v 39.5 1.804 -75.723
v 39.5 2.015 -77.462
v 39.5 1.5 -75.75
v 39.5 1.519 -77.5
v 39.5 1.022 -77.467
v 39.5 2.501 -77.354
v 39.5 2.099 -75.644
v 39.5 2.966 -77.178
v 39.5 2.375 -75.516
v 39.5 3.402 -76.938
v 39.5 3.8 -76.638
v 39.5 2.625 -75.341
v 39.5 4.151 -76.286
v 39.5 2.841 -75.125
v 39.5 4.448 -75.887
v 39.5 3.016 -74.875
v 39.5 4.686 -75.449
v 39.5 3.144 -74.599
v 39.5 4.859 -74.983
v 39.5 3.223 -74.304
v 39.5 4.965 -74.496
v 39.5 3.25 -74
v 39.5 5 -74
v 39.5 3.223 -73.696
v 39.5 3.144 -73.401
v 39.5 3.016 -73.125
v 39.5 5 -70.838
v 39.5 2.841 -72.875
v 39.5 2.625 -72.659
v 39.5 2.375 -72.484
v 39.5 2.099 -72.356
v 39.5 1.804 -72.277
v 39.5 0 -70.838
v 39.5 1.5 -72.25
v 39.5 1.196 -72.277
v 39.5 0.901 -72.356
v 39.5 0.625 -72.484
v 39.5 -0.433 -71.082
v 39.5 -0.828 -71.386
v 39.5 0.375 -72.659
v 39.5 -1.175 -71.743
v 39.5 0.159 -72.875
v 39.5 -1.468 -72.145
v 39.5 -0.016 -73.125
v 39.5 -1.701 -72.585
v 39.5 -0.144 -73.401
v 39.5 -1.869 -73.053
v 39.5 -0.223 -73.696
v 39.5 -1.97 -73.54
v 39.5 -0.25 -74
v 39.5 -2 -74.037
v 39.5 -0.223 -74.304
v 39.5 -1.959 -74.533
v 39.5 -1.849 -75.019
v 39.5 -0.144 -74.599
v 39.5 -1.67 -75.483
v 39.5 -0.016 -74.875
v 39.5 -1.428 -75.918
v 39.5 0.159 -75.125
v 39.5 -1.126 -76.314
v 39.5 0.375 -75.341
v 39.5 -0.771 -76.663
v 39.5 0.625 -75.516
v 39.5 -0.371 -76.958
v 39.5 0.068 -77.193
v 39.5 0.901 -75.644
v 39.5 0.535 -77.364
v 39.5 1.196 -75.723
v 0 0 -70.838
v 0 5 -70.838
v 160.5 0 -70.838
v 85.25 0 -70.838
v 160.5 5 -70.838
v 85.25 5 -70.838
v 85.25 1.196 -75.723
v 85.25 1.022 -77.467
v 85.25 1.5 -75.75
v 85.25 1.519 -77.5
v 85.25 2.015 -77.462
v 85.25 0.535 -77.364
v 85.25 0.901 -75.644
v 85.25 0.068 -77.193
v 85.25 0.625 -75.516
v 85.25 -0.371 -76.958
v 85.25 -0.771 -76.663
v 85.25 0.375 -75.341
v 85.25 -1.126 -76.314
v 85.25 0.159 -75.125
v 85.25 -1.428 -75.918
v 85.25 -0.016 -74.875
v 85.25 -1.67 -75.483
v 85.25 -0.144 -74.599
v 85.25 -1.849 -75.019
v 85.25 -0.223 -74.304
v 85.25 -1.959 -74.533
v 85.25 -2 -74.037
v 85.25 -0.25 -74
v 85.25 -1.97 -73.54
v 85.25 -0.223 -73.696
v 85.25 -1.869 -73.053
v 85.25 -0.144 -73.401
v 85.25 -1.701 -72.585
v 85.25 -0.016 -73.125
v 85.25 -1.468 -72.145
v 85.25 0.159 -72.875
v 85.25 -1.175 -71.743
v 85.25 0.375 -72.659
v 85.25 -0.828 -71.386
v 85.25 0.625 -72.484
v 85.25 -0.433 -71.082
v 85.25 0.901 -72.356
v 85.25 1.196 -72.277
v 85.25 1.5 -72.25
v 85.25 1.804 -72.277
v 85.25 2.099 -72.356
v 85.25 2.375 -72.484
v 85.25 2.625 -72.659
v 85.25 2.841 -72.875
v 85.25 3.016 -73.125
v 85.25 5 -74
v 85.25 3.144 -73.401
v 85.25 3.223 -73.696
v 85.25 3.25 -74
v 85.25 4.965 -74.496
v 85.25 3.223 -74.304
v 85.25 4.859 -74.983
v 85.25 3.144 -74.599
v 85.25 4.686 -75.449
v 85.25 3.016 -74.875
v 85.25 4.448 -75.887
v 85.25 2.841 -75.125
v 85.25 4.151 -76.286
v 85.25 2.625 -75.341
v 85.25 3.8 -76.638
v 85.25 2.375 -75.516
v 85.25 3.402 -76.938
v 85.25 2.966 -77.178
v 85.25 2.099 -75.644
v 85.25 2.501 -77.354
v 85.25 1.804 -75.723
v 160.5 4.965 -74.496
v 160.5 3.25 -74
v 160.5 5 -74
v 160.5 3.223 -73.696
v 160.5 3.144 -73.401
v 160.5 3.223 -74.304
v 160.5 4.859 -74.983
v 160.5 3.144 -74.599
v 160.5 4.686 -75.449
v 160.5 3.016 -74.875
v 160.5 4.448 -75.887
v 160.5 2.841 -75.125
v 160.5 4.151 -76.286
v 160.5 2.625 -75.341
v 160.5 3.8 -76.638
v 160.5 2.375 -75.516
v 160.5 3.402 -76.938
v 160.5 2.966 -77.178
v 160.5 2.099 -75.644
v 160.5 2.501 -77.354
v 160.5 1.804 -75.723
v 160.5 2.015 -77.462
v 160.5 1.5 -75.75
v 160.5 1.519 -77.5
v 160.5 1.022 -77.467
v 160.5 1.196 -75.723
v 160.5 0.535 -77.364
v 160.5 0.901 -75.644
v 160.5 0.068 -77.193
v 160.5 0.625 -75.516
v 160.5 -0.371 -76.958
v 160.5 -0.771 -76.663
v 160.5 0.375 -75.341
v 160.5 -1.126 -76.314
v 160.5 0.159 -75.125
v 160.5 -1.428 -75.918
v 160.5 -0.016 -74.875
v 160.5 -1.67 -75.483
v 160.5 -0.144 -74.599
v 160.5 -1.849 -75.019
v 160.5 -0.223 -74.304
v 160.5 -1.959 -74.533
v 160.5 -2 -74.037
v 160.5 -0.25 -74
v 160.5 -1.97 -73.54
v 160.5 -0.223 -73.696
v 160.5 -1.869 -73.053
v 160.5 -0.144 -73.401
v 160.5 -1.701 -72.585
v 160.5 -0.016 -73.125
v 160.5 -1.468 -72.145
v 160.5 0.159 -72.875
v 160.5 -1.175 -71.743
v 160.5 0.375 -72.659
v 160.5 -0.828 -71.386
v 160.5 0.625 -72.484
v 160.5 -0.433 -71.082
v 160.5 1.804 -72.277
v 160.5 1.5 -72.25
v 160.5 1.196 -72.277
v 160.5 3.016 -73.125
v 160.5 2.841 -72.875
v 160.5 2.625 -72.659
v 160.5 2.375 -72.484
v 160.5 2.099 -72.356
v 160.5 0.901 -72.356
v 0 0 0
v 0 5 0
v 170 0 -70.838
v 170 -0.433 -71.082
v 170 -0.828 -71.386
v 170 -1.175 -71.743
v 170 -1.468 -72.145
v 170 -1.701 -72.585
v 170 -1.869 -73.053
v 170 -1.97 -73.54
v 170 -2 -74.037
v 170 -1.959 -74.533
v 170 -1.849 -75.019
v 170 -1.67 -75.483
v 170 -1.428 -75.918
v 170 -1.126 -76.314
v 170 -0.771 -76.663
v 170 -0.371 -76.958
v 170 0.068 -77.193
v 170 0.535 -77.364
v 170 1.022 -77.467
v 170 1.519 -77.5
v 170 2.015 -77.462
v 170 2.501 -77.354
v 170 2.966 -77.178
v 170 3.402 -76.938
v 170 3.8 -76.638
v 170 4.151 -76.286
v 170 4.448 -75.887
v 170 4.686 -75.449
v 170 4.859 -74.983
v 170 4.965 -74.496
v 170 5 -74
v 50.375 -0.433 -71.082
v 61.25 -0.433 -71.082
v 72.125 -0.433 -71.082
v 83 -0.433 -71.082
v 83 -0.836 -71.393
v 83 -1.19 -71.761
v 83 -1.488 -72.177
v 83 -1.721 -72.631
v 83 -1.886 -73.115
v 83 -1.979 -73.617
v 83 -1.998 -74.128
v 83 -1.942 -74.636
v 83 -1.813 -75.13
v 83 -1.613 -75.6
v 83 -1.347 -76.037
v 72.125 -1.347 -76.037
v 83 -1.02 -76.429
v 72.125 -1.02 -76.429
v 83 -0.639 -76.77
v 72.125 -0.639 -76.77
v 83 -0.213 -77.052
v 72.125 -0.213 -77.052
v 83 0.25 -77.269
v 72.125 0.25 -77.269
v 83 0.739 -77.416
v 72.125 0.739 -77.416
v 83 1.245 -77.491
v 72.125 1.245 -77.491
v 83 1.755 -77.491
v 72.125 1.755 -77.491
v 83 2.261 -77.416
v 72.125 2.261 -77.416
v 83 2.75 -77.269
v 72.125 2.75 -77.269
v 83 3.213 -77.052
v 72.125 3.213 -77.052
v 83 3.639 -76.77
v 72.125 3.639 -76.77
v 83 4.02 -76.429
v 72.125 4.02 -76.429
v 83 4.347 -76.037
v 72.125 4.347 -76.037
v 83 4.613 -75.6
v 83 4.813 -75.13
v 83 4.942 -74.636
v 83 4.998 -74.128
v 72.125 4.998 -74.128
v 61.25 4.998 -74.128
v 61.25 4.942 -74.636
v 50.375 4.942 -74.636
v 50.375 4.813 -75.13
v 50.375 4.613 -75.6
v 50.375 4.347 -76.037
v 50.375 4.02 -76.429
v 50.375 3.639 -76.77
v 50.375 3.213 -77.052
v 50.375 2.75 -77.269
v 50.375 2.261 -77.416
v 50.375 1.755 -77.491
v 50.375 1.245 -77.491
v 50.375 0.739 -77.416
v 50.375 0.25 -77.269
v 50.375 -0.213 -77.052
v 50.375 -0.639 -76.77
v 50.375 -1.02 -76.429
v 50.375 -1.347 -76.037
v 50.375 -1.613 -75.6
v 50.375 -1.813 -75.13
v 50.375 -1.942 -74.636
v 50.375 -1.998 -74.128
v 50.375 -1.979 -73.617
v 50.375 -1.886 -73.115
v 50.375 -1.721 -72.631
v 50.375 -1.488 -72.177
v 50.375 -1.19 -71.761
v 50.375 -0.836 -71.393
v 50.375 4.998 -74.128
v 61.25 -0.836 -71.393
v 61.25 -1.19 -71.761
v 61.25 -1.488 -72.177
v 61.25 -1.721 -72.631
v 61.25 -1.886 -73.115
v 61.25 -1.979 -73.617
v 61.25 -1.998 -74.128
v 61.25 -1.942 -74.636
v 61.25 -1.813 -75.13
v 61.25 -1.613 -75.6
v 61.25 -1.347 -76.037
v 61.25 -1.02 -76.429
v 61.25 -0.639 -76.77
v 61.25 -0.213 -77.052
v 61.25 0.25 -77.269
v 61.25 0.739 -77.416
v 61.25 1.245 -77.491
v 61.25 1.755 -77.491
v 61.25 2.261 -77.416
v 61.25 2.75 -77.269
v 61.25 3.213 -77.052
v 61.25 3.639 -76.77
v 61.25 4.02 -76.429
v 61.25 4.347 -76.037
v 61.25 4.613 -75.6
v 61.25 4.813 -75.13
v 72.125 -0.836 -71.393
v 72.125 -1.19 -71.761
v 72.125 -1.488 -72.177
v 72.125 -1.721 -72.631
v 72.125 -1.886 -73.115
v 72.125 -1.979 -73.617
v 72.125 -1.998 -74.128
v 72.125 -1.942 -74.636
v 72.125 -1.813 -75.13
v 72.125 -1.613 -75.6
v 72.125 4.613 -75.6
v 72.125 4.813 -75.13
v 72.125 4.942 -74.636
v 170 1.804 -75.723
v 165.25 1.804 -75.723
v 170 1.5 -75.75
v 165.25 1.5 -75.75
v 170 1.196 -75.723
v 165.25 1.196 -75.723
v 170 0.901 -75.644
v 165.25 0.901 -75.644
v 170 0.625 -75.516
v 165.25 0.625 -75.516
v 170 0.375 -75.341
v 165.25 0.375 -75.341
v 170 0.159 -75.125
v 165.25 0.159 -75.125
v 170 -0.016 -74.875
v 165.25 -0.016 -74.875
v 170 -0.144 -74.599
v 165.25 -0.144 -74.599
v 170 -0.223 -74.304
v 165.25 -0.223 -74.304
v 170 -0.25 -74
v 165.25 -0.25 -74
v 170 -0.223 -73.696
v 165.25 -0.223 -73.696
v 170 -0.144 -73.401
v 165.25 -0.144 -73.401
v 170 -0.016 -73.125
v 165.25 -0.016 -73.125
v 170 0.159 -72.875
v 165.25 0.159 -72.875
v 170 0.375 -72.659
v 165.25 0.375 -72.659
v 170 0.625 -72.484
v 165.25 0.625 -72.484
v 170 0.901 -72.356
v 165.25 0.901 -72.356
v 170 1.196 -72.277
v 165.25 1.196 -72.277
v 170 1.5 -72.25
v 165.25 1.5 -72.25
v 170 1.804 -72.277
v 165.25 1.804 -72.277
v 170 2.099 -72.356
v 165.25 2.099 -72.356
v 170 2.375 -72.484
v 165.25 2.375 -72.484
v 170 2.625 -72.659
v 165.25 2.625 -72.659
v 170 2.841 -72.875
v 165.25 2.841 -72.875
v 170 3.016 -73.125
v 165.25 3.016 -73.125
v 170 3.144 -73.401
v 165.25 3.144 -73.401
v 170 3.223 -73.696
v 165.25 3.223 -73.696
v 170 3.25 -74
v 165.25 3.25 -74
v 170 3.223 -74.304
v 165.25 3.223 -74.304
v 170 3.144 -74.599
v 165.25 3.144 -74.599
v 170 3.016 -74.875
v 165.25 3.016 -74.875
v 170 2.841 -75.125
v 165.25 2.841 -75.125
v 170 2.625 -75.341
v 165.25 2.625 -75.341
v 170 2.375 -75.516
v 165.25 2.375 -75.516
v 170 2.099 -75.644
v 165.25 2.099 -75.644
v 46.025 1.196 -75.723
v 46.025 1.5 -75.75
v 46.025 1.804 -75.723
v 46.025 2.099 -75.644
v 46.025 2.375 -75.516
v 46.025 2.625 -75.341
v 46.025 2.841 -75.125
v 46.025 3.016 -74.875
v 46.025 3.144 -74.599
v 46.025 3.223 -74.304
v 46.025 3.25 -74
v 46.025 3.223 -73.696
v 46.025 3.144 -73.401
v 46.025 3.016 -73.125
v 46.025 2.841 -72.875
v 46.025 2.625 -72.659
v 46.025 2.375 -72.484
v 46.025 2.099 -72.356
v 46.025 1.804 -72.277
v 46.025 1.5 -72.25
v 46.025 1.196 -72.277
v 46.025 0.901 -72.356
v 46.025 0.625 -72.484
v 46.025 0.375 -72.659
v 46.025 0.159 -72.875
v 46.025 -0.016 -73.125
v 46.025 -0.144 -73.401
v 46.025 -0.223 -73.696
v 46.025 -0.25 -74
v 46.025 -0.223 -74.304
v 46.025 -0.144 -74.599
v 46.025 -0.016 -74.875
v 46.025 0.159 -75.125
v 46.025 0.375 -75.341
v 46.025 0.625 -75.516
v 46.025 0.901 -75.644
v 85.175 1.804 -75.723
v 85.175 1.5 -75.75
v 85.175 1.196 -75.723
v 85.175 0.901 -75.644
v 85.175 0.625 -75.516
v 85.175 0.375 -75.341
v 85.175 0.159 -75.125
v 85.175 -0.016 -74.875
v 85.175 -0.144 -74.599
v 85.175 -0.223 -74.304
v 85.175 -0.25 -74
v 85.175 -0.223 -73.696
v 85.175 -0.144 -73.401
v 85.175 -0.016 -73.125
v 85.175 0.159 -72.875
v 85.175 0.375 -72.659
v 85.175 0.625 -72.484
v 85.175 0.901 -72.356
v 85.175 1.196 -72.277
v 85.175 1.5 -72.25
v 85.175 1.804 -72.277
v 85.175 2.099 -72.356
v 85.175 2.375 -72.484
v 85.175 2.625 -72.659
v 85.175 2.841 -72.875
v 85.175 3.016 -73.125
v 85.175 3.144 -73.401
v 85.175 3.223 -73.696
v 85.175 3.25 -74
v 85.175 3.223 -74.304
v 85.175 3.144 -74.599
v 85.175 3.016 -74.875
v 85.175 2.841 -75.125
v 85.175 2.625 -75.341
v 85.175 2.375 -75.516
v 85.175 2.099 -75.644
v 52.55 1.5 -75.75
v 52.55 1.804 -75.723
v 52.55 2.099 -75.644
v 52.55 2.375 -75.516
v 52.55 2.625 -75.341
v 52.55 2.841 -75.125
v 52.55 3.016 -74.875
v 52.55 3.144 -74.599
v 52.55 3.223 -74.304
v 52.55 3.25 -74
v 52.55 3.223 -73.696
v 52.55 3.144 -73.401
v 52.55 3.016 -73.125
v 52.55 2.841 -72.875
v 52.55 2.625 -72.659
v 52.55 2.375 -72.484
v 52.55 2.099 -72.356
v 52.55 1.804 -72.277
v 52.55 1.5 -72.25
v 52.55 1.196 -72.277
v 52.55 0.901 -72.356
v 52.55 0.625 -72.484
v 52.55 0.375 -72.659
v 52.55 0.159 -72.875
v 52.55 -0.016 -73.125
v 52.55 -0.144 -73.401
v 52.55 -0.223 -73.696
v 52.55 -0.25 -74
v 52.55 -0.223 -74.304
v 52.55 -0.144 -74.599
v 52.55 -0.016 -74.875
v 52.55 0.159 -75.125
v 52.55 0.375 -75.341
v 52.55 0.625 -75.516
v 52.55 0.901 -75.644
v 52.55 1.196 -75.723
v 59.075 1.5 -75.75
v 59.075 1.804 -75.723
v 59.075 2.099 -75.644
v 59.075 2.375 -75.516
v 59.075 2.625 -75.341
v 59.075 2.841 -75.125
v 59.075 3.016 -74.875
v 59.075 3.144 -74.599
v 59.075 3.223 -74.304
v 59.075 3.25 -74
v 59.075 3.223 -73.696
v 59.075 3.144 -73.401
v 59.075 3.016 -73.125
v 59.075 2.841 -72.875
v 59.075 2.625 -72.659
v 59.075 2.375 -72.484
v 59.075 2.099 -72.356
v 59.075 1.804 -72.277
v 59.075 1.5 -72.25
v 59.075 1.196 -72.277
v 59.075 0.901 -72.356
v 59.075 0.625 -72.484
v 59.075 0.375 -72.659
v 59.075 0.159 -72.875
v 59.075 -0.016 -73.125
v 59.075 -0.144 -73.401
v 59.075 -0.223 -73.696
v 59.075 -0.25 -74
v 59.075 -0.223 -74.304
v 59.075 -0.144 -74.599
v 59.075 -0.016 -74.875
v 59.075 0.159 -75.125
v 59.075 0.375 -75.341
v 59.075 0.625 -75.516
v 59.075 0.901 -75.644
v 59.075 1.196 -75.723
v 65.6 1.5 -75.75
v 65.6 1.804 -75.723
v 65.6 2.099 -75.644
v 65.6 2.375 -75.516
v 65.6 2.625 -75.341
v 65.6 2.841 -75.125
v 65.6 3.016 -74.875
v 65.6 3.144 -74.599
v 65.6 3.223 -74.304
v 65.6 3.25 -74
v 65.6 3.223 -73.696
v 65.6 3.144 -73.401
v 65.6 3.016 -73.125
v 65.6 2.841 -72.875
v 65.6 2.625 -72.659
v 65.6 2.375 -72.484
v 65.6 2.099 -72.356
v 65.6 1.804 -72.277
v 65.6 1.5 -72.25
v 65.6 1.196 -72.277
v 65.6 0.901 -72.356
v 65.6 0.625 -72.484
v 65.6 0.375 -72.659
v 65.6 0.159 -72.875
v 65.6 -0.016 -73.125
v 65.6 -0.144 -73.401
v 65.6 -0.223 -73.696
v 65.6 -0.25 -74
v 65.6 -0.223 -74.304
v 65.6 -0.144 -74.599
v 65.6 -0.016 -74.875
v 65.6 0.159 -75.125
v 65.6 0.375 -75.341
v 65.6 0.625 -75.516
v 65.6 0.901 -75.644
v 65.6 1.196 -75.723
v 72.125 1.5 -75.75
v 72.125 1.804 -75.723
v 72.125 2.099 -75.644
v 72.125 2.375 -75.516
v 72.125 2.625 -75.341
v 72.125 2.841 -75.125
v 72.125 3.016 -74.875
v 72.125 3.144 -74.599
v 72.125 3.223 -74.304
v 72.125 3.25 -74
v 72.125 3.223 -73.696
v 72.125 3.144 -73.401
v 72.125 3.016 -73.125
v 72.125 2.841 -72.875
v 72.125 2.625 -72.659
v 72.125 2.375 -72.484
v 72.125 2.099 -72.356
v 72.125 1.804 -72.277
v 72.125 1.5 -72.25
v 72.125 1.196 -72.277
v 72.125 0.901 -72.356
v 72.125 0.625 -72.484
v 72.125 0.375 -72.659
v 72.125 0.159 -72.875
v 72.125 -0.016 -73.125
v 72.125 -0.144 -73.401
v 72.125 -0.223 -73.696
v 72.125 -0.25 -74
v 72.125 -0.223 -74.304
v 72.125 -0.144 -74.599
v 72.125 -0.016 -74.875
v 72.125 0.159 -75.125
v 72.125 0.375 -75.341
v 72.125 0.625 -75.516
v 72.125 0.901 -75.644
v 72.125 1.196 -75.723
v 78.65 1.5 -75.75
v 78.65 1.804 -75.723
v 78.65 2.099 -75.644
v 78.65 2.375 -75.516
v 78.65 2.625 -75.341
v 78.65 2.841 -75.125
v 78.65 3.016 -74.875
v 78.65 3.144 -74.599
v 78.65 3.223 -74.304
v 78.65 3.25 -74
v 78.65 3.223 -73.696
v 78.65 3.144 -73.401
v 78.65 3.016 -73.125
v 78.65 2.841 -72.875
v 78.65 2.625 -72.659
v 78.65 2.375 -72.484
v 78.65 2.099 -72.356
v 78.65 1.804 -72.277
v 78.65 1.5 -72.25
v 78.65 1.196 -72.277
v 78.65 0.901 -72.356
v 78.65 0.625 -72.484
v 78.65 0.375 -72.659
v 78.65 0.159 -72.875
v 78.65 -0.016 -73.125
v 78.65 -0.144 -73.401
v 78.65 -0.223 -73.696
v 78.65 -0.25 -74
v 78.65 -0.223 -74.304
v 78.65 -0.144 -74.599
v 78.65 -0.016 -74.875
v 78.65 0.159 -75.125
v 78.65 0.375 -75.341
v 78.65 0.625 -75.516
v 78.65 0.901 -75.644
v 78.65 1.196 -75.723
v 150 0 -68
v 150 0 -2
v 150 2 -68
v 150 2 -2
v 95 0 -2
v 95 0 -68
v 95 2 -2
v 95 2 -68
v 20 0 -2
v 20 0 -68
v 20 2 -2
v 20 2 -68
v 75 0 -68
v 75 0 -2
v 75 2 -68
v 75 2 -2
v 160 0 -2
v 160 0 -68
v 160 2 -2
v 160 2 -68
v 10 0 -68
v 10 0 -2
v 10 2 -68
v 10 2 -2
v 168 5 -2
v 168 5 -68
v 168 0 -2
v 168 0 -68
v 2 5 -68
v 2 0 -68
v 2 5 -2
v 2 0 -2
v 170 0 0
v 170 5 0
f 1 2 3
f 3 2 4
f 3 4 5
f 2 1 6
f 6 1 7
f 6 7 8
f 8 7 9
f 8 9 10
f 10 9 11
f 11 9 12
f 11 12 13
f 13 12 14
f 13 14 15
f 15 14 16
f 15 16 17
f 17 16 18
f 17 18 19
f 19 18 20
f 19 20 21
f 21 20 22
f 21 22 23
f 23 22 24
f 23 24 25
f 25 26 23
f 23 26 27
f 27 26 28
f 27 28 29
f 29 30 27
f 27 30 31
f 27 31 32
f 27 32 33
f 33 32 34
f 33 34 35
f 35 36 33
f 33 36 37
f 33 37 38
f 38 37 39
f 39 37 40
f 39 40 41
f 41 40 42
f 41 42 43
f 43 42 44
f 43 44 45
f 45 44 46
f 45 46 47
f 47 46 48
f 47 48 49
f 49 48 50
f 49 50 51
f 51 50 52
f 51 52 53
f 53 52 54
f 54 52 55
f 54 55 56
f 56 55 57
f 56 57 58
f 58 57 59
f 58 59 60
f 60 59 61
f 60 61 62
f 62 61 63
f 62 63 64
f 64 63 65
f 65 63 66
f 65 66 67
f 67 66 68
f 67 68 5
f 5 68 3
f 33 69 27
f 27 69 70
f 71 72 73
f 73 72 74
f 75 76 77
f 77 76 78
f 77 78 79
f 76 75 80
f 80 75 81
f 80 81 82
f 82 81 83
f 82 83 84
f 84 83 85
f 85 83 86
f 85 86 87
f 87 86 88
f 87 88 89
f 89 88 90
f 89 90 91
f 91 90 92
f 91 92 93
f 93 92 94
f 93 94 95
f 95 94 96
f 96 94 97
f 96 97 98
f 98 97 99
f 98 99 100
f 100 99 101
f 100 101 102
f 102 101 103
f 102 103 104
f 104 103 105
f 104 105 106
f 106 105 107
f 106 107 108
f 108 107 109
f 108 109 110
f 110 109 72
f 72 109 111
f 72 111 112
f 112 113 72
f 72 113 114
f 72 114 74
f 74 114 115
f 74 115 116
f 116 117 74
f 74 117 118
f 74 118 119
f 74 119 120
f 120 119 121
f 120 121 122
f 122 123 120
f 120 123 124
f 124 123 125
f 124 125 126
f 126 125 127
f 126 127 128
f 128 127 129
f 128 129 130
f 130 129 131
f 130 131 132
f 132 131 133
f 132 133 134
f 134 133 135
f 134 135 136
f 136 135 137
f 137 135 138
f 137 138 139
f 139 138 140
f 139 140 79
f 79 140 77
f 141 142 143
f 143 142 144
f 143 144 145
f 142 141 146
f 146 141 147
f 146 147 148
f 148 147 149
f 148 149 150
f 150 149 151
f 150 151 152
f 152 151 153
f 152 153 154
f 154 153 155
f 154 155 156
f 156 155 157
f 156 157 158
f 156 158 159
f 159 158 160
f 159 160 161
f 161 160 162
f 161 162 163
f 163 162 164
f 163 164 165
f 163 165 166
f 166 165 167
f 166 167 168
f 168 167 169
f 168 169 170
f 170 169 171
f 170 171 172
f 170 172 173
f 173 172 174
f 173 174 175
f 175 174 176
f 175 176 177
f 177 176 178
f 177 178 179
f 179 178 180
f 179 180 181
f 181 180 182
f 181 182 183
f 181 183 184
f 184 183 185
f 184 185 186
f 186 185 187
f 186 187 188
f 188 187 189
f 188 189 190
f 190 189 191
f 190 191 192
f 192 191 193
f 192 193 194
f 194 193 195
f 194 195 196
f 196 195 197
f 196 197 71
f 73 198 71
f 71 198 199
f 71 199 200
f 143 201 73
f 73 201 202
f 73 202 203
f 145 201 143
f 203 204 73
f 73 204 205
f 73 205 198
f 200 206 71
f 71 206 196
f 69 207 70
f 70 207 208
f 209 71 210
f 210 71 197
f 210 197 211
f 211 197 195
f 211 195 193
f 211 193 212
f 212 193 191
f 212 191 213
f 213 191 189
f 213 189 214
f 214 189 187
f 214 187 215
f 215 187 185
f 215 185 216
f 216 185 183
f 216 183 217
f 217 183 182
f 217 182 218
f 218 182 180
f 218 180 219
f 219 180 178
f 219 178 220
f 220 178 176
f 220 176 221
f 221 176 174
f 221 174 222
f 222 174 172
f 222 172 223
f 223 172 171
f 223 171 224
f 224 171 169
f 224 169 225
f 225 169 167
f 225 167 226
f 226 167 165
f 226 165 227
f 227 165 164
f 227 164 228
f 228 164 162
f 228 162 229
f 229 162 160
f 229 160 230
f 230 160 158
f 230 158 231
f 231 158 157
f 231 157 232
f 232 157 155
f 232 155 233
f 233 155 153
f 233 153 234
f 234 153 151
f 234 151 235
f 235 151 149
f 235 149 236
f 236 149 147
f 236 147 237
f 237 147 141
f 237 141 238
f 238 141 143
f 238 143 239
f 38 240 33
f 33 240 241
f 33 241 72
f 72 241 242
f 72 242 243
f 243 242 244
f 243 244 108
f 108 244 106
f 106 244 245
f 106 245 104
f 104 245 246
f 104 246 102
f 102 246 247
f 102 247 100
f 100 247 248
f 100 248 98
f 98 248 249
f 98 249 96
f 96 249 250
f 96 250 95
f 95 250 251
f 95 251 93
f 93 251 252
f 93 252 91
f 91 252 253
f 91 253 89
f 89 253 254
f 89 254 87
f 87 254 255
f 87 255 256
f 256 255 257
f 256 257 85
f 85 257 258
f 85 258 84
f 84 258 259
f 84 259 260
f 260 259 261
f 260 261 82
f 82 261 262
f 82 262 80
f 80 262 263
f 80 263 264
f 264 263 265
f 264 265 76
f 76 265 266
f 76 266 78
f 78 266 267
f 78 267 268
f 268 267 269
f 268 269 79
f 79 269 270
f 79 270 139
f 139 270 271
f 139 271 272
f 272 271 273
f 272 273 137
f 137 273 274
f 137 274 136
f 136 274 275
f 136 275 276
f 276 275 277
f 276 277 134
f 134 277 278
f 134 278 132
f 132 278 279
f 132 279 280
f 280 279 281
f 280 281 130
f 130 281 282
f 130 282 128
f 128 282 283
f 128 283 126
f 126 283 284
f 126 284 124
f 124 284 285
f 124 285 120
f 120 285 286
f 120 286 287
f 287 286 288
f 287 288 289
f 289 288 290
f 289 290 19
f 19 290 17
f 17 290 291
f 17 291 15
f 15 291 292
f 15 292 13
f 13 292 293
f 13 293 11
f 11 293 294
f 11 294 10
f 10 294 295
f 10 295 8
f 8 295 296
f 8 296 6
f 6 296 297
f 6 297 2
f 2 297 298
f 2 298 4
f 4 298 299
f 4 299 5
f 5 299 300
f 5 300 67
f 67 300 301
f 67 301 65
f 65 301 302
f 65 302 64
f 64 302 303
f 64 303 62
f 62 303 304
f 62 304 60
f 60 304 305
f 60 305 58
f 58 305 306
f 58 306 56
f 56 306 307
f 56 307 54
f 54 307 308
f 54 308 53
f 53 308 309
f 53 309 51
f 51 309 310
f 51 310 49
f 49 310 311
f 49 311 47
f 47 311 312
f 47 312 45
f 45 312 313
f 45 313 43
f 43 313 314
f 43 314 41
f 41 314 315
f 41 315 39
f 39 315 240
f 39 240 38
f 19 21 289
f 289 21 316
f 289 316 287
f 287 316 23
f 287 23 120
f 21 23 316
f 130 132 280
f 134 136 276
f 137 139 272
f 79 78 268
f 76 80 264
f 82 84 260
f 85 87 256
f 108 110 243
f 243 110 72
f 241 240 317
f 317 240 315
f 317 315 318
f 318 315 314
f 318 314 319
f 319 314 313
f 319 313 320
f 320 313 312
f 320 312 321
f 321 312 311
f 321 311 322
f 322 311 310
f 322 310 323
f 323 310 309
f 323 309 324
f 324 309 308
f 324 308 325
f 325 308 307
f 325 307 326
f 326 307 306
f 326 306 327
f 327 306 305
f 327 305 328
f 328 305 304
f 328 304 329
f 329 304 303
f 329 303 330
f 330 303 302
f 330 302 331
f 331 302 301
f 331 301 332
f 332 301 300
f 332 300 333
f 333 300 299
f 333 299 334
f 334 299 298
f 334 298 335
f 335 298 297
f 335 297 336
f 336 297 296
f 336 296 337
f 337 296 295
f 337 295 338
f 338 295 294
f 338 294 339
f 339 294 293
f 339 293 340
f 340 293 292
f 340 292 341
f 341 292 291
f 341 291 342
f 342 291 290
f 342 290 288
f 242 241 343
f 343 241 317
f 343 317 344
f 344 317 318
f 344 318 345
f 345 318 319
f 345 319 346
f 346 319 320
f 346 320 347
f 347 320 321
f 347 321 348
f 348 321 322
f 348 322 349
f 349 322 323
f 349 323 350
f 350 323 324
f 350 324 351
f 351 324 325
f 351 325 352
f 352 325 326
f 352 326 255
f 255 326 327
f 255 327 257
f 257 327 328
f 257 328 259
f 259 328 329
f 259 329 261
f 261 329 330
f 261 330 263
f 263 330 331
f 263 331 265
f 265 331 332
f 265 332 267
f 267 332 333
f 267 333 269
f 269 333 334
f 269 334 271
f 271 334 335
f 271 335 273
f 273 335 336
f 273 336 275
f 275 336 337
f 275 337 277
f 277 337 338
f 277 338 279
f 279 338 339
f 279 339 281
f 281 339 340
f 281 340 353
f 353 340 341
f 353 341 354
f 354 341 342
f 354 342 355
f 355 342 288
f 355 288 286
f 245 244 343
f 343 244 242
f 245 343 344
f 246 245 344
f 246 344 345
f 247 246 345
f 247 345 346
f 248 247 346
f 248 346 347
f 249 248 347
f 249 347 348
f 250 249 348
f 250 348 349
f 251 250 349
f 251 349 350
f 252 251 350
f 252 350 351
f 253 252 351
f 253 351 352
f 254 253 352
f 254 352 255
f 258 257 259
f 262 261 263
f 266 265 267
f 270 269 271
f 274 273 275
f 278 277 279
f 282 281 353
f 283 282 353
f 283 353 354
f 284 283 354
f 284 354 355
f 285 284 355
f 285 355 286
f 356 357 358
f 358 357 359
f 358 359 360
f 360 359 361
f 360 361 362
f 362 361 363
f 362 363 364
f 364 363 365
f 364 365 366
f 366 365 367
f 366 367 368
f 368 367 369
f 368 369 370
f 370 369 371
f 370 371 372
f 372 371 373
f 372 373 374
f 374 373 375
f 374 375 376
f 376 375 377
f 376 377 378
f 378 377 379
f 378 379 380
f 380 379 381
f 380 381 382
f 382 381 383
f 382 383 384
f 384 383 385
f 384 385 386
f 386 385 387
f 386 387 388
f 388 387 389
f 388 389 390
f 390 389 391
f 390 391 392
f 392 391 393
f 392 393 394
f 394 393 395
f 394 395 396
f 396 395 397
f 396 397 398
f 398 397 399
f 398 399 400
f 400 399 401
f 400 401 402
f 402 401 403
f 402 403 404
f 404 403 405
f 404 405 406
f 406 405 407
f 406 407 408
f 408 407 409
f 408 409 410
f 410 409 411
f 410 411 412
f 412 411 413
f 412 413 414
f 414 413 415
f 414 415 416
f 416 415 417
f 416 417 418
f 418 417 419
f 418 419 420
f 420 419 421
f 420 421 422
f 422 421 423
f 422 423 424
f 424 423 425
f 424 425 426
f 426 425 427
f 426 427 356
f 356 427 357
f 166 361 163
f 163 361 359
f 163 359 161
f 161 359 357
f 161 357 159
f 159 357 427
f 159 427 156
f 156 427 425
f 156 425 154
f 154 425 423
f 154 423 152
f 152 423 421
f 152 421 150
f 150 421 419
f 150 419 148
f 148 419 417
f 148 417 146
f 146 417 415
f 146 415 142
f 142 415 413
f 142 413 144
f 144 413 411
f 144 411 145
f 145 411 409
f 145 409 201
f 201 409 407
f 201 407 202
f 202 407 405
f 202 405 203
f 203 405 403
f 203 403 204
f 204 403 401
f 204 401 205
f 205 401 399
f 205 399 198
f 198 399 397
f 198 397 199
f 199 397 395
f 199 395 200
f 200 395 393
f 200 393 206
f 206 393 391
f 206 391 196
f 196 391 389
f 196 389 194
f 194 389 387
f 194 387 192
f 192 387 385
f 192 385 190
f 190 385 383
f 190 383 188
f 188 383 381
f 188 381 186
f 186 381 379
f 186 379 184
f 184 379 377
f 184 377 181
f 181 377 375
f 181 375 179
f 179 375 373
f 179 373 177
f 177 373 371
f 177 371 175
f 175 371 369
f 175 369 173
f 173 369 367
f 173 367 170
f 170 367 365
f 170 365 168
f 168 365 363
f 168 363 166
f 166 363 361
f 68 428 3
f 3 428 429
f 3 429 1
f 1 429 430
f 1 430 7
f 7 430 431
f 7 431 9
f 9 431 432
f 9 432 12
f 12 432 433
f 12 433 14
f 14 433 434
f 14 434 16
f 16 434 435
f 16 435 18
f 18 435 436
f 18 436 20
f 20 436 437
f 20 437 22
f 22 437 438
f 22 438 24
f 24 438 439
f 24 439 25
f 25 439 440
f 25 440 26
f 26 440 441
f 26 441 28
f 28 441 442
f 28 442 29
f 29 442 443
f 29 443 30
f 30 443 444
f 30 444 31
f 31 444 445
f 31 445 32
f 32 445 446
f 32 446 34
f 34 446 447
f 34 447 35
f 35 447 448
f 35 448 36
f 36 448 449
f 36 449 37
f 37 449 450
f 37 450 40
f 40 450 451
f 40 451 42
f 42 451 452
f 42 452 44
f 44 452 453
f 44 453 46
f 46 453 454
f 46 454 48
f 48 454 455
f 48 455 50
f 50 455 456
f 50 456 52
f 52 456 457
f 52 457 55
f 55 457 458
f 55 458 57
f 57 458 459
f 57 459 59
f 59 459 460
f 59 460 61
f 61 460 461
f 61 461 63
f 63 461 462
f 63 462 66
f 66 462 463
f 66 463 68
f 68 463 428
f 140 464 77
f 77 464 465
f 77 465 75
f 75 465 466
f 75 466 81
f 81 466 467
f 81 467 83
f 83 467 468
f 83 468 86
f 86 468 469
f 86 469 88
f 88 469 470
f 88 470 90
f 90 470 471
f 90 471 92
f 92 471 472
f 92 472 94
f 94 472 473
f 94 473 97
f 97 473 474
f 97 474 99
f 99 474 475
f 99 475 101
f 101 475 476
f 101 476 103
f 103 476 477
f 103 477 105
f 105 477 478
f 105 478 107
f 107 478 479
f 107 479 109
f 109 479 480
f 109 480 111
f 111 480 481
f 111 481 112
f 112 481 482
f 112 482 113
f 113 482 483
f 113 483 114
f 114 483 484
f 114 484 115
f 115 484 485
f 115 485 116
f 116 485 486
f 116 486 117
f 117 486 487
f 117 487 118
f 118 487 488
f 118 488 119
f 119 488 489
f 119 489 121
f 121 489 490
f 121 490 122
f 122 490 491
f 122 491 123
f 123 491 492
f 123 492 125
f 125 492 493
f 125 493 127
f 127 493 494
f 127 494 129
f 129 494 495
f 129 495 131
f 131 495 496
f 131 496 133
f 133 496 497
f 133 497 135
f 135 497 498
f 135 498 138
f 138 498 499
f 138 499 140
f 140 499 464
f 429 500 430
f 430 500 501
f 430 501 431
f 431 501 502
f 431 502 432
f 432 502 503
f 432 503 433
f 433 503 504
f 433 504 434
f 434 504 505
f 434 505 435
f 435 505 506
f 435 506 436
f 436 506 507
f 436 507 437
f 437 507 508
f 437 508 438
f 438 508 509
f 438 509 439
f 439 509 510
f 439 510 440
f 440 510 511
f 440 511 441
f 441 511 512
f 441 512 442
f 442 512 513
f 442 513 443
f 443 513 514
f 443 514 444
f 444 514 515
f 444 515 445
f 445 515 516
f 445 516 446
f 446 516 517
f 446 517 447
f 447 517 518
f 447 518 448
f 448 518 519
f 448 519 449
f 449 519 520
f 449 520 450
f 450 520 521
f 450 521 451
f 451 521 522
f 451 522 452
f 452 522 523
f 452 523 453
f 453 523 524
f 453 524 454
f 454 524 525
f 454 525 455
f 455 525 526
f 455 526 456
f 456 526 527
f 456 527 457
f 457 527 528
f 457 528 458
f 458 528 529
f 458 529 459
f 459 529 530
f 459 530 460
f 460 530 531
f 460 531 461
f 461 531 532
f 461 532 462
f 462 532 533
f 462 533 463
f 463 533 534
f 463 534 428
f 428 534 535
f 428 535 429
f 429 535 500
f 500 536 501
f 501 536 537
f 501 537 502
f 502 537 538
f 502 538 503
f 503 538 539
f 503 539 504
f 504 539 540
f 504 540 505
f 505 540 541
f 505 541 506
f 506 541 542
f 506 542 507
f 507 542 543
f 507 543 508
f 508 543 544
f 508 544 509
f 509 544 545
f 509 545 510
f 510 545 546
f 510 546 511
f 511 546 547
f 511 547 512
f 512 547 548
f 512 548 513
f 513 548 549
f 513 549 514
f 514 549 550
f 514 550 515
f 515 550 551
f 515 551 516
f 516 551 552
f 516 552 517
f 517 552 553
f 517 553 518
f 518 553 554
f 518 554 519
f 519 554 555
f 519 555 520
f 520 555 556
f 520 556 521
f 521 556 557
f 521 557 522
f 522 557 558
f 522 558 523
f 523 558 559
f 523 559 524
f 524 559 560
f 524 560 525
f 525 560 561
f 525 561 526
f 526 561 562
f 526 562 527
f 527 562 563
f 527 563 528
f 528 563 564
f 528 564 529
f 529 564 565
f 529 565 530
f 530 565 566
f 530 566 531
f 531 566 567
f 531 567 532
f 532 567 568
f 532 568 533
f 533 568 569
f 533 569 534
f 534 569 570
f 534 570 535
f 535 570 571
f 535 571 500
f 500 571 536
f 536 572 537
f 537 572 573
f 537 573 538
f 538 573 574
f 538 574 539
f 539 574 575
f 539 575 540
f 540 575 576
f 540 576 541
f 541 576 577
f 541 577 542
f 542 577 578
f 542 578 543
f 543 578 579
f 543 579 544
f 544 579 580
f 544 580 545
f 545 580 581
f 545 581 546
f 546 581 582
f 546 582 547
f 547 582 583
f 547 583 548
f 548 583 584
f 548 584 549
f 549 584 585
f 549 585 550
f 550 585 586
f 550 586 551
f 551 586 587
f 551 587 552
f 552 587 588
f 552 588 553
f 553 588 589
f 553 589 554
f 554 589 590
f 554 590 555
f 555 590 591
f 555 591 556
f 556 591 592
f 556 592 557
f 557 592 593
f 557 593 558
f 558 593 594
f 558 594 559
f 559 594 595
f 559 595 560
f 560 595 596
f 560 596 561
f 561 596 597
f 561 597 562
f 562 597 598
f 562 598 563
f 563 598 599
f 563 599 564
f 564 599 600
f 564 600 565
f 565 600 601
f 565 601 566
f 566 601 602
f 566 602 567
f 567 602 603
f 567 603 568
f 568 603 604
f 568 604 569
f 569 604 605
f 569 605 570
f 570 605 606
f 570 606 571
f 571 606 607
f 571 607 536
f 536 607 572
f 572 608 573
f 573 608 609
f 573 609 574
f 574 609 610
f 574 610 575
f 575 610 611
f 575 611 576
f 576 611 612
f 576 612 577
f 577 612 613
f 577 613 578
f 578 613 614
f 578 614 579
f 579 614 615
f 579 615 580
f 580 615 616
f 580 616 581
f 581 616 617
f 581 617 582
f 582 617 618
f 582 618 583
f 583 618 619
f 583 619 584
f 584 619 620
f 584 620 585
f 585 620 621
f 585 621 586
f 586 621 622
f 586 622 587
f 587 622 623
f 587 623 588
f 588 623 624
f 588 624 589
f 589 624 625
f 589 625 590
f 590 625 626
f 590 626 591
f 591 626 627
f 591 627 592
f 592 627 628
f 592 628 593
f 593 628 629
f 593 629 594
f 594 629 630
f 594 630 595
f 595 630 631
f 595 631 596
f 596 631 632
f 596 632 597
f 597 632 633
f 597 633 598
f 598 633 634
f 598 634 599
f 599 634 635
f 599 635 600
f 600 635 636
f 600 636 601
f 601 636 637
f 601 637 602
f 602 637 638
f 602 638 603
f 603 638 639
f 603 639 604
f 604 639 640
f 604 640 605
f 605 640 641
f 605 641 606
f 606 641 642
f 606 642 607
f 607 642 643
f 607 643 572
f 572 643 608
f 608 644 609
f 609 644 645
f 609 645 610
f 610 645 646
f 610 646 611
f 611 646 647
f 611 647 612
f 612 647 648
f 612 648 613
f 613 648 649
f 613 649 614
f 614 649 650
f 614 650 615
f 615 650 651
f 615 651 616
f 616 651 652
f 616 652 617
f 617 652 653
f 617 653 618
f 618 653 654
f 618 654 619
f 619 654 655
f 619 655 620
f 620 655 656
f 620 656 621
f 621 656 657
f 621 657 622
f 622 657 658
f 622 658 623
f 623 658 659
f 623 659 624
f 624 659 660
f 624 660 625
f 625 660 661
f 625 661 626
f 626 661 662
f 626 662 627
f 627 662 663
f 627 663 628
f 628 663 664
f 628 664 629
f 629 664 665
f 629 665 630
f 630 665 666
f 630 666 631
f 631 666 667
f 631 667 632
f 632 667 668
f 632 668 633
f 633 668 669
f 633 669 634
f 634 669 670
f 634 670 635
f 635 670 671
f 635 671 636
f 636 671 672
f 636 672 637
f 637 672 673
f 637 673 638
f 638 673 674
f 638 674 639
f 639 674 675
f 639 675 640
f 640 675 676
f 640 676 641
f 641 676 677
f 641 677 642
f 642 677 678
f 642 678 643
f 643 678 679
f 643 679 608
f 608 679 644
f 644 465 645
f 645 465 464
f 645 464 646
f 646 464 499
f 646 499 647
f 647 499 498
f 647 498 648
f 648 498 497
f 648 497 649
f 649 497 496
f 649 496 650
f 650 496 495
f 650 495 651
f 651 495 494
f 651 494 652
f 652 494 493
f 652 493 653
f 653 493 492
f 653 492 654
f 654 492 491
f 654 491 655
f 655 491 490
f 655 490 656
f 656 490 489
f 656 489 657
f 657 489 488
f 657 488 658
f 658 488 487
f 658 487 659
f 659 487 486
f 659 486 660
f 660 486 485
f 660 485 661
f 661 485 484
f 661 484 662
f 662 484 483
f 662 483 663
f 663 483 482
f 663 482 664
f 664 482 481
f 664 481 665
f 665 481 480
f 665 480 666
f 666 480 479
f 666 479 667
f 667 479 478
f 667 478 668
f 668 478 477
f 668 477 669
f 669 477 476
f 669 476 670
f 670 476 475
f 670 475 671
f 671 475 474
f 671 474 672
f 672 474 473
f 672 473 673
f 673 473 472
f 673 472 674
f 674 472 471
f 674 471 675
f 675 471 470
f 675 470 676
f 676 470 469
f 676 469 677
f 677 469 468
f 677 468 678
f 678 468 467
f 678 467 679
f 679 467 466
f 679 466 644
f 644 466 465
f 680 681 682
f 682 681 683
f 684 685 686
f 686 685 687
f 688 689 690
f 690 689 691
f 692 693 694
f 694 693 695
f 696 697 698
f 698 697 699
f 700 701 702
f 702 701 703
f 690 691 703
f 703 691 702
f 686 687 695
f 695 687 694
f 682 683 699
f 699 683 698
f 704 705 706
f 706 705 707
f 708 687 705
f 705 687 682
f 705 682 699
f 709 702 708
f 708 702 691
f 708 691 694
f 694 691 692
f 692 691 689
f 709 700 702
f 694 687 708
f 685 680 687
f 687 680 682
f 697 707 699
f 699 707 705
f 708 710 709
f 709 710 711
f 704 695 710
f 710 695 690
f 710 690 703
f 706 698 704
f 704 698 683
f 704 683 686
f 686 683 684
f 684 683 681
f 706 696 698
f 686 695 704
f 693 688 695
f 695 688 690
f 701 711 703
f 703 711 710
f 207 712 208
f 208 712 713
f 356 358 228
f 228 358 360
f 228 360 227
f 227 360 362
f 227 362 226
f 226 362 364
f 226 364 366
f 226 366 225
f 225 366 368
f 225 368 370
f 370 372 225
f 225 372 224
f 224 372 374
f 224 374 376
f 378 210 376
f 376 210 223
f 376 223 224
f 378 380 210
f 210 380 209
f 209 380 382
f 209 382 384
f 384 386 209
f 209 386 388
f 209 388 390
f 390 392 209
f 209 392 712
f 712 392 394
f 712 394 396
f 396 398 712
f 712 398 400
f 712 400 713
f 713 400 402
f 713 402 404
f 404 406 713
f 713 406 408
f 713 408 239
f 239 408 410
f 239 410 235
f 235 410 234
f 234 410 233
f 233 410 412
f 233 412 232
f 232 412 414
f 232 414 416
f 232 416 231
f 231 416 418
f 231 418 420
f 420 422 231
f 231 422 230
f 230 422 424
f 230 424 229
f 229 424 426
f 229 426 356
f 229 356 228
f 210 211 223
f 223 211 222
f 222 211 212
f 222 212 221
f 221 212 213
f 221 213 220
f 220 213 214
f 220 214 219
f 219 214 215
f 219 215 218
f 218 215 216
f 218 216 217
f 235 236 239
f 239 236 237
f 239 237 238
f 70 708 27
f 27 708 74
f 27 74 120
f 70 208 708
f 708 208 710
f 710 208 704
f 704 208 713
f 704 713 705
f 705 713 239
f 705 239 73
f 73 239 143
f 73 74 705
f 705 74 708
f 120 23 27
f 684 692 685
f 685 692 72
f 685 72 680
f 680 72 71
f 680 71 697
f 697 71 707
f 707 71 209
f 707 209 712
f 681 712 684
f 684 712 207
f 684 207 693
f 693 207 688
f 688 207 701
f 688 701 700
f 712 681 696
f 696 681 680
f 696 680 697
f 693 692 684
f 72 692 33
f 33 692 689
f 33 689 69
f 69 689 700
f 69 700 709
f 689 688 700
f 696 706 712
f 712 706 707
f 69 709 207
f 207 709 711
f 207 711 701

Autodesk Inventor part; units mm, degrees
ref_plane "YZ Plane" through (0, 0, 0) normal (1, 0, 0) x (0, 1, 0)
ref_plane "XZ Plane" through (0, 0, 0) normal (0, 1, 0) x (-1, 0, 0)
ref_plane "XY Plane" through (0, 0, 0) normal (0, 0, 1) x (1, 0, 0)
sketch "Skizze1" plane through (0, 0, 0) normal (0, 1, 0) x (-1, 0, 0)
  line L0 (0, 0) -> (-170, 0)
  line L1 (-170, 0) -> (-170, -70)
  line L2 (-170, -70) -> (0, -70)
  line L3 (0, -70) -> (0, 0)
  dimension "d0" = 170
  dimension "d1" = 70
extrude "Extrusion1" add sketch "Skizze1" along normal blind 5
sketch "Skizze2" plane through (0, 5, 0) normal (0, 1, 0) x (1, 0, 0)
  line L0 (170, 0) -> (170, 70) projected
  line L1 (170, 70) -> (0, 70) projected
  line L2 (0, 70) -> (0, 0) projected
  line L3 (0, 0) -> (170, 0) projected
  line L4 (2, 68) -> (168, 68)
  line L5 (168, 68) -> (168, 2)
  line L6 (168, 2) -> (2, 2)
  line L7 (2, 2) -> (2, 68)
  dimension "d4" = 2
extrude "Extrusion2" cut sketch "Skizze2" against normal blind 3 contours L4 L5 L6 L7
sketch "Skizze3" plane through (0, 2, 0) normal (0, 1, 0) x (1, 0, 0)
  line L0 (168, 2) -> (2, 2) projected
  line L1 (168, 68) -> (168, 2) projected
  line L2 (2, 68) -> (168, 68) projected
  line L3 (2, 2) -> (2, 68) projected
  line L4 (75, 68) -> (95, 68)
  line L5 (95, 68) -> (95, 2)
  line L6 (95, 2) -> (75, 2)
  line L7 (75, 2) -> (75, 68)
  line L8 (2, 68) -> (168, 68) projected
  line L9 (2, 68) -> (168, 68) projected
  line L10 (10, 68) -> (20, 68)
  line L11 (20, 68) -> (20, 2)
  line L12 (20, 2) -> (10, 2)
  line L13 (10, 2) -> (10, 68)
  line L14 (168, 2) -> (2, 2) projected
  line L15 (160, 68) -> (150, 68)
  line L16 (150, 68) -> (150, 2)
  line L17 (150, 2) -> (160, 2)
  line L18 (160, 2) -> (160, 68)
  line L19 (0, 70) -> (0, 0) projected
  line L20 (170, 0) -> (170, 70) projected
  point P0 (85, 68)
  point P1 (85, 68)
  point P2 (160, 2)
  point P3 (10, 2)
  dimension "d7" = 20
  dimension "d8" = 10
  dimension "d9" = 10
  dimension "d10" = 10
extrude "Extrusion3" cut sketch "Skizze3" against normal through all contours L0 L18 L2 L1 | L0 L5 L2 L16 | L0 L11 L2 L7 | L0 L3 L2 L13
sketch "Skizze4" plane through (170, 0, 0) normal (1, 0, 0) x (0, 0, -1)
  circle A0 centre (74, 1.5) radius 3.5
  circle A1 centre (74, 1.5) radius 1.75
  line L0 (0, 0) -> (70, 0) projected
  line L1 (0, 5) -> (70, 5) projected
  line L2 (70, 5) -> (74, 5)
  line L3 (70, 0) -> (70, 5) projected
  line L4 (70, 0) -> (70.8377, 0)
  point P0 (70, 3)
  dimension "d13" = 7
  dimension "d14" = 3.5
  dimension "d27" = 4
extrude "Extrusion4" add sketch "Skizze4" against normal up to surface (170 mm away)
sketch "Skizze5" plane through (0, 5, 0) normal (0, 1, 0) x (1, 0, 0)
  line L0 (170, 70.8377) -> (0, 70.8377) projected
  line L1 (170, 77.5) -> (0, 77.5) projected
  line L2 (170, 70.8377) -> (170, 77.5) projected
  line L3 (0, 70.8377) -> (0, 77.5) projected
  line L4 (170, 77.5) -> (0, 77.5) projected
  line L5 (9.5, 77.5) -> (9.5, 70.8377)
  line L6 (39.5, 70.8377) -> (39.5, 77.5)
  line L7 (160.5, 70.8377) -> (160.5, 77.5)
  line L8 (170, 77.5) -> (0, 77.5) projected
  line L9 (130.5, 70.8377) -> (130.5, 77.5)
  line L10 (85.25, 70.8377) -> (85.25, 77.5)
  line L11 (170, 77.5) -> (0, 77.5) projected
  line L12 (84.75, 77.5) -> (84.75, 70.8377)
  line L13 (85.25, 74.1094) -> (84.75, 74.1094) construction
  point P0 (0, 0)
  point P1 (85, 74.1094)
  point P2 (85, 77.5)
  dimension "d28" = 0.5
  dimension "d29" = 9.5
  dimension "d30" = 9.5
  dimension "d31" = 30
  dimension "d32" = 30
extrude "Extrusion5" cut sketch "Skizze5" against normal through all contours L0 L9 L1 L7 | L0 L10 L1 L9 | L0 L5 L1 L6 | L0 L3 L1 L5
equation "\"d9\" = d8"
equation "\"d30\" = d29"
equation "\"d32\" = d31"
properties part number "roof"
